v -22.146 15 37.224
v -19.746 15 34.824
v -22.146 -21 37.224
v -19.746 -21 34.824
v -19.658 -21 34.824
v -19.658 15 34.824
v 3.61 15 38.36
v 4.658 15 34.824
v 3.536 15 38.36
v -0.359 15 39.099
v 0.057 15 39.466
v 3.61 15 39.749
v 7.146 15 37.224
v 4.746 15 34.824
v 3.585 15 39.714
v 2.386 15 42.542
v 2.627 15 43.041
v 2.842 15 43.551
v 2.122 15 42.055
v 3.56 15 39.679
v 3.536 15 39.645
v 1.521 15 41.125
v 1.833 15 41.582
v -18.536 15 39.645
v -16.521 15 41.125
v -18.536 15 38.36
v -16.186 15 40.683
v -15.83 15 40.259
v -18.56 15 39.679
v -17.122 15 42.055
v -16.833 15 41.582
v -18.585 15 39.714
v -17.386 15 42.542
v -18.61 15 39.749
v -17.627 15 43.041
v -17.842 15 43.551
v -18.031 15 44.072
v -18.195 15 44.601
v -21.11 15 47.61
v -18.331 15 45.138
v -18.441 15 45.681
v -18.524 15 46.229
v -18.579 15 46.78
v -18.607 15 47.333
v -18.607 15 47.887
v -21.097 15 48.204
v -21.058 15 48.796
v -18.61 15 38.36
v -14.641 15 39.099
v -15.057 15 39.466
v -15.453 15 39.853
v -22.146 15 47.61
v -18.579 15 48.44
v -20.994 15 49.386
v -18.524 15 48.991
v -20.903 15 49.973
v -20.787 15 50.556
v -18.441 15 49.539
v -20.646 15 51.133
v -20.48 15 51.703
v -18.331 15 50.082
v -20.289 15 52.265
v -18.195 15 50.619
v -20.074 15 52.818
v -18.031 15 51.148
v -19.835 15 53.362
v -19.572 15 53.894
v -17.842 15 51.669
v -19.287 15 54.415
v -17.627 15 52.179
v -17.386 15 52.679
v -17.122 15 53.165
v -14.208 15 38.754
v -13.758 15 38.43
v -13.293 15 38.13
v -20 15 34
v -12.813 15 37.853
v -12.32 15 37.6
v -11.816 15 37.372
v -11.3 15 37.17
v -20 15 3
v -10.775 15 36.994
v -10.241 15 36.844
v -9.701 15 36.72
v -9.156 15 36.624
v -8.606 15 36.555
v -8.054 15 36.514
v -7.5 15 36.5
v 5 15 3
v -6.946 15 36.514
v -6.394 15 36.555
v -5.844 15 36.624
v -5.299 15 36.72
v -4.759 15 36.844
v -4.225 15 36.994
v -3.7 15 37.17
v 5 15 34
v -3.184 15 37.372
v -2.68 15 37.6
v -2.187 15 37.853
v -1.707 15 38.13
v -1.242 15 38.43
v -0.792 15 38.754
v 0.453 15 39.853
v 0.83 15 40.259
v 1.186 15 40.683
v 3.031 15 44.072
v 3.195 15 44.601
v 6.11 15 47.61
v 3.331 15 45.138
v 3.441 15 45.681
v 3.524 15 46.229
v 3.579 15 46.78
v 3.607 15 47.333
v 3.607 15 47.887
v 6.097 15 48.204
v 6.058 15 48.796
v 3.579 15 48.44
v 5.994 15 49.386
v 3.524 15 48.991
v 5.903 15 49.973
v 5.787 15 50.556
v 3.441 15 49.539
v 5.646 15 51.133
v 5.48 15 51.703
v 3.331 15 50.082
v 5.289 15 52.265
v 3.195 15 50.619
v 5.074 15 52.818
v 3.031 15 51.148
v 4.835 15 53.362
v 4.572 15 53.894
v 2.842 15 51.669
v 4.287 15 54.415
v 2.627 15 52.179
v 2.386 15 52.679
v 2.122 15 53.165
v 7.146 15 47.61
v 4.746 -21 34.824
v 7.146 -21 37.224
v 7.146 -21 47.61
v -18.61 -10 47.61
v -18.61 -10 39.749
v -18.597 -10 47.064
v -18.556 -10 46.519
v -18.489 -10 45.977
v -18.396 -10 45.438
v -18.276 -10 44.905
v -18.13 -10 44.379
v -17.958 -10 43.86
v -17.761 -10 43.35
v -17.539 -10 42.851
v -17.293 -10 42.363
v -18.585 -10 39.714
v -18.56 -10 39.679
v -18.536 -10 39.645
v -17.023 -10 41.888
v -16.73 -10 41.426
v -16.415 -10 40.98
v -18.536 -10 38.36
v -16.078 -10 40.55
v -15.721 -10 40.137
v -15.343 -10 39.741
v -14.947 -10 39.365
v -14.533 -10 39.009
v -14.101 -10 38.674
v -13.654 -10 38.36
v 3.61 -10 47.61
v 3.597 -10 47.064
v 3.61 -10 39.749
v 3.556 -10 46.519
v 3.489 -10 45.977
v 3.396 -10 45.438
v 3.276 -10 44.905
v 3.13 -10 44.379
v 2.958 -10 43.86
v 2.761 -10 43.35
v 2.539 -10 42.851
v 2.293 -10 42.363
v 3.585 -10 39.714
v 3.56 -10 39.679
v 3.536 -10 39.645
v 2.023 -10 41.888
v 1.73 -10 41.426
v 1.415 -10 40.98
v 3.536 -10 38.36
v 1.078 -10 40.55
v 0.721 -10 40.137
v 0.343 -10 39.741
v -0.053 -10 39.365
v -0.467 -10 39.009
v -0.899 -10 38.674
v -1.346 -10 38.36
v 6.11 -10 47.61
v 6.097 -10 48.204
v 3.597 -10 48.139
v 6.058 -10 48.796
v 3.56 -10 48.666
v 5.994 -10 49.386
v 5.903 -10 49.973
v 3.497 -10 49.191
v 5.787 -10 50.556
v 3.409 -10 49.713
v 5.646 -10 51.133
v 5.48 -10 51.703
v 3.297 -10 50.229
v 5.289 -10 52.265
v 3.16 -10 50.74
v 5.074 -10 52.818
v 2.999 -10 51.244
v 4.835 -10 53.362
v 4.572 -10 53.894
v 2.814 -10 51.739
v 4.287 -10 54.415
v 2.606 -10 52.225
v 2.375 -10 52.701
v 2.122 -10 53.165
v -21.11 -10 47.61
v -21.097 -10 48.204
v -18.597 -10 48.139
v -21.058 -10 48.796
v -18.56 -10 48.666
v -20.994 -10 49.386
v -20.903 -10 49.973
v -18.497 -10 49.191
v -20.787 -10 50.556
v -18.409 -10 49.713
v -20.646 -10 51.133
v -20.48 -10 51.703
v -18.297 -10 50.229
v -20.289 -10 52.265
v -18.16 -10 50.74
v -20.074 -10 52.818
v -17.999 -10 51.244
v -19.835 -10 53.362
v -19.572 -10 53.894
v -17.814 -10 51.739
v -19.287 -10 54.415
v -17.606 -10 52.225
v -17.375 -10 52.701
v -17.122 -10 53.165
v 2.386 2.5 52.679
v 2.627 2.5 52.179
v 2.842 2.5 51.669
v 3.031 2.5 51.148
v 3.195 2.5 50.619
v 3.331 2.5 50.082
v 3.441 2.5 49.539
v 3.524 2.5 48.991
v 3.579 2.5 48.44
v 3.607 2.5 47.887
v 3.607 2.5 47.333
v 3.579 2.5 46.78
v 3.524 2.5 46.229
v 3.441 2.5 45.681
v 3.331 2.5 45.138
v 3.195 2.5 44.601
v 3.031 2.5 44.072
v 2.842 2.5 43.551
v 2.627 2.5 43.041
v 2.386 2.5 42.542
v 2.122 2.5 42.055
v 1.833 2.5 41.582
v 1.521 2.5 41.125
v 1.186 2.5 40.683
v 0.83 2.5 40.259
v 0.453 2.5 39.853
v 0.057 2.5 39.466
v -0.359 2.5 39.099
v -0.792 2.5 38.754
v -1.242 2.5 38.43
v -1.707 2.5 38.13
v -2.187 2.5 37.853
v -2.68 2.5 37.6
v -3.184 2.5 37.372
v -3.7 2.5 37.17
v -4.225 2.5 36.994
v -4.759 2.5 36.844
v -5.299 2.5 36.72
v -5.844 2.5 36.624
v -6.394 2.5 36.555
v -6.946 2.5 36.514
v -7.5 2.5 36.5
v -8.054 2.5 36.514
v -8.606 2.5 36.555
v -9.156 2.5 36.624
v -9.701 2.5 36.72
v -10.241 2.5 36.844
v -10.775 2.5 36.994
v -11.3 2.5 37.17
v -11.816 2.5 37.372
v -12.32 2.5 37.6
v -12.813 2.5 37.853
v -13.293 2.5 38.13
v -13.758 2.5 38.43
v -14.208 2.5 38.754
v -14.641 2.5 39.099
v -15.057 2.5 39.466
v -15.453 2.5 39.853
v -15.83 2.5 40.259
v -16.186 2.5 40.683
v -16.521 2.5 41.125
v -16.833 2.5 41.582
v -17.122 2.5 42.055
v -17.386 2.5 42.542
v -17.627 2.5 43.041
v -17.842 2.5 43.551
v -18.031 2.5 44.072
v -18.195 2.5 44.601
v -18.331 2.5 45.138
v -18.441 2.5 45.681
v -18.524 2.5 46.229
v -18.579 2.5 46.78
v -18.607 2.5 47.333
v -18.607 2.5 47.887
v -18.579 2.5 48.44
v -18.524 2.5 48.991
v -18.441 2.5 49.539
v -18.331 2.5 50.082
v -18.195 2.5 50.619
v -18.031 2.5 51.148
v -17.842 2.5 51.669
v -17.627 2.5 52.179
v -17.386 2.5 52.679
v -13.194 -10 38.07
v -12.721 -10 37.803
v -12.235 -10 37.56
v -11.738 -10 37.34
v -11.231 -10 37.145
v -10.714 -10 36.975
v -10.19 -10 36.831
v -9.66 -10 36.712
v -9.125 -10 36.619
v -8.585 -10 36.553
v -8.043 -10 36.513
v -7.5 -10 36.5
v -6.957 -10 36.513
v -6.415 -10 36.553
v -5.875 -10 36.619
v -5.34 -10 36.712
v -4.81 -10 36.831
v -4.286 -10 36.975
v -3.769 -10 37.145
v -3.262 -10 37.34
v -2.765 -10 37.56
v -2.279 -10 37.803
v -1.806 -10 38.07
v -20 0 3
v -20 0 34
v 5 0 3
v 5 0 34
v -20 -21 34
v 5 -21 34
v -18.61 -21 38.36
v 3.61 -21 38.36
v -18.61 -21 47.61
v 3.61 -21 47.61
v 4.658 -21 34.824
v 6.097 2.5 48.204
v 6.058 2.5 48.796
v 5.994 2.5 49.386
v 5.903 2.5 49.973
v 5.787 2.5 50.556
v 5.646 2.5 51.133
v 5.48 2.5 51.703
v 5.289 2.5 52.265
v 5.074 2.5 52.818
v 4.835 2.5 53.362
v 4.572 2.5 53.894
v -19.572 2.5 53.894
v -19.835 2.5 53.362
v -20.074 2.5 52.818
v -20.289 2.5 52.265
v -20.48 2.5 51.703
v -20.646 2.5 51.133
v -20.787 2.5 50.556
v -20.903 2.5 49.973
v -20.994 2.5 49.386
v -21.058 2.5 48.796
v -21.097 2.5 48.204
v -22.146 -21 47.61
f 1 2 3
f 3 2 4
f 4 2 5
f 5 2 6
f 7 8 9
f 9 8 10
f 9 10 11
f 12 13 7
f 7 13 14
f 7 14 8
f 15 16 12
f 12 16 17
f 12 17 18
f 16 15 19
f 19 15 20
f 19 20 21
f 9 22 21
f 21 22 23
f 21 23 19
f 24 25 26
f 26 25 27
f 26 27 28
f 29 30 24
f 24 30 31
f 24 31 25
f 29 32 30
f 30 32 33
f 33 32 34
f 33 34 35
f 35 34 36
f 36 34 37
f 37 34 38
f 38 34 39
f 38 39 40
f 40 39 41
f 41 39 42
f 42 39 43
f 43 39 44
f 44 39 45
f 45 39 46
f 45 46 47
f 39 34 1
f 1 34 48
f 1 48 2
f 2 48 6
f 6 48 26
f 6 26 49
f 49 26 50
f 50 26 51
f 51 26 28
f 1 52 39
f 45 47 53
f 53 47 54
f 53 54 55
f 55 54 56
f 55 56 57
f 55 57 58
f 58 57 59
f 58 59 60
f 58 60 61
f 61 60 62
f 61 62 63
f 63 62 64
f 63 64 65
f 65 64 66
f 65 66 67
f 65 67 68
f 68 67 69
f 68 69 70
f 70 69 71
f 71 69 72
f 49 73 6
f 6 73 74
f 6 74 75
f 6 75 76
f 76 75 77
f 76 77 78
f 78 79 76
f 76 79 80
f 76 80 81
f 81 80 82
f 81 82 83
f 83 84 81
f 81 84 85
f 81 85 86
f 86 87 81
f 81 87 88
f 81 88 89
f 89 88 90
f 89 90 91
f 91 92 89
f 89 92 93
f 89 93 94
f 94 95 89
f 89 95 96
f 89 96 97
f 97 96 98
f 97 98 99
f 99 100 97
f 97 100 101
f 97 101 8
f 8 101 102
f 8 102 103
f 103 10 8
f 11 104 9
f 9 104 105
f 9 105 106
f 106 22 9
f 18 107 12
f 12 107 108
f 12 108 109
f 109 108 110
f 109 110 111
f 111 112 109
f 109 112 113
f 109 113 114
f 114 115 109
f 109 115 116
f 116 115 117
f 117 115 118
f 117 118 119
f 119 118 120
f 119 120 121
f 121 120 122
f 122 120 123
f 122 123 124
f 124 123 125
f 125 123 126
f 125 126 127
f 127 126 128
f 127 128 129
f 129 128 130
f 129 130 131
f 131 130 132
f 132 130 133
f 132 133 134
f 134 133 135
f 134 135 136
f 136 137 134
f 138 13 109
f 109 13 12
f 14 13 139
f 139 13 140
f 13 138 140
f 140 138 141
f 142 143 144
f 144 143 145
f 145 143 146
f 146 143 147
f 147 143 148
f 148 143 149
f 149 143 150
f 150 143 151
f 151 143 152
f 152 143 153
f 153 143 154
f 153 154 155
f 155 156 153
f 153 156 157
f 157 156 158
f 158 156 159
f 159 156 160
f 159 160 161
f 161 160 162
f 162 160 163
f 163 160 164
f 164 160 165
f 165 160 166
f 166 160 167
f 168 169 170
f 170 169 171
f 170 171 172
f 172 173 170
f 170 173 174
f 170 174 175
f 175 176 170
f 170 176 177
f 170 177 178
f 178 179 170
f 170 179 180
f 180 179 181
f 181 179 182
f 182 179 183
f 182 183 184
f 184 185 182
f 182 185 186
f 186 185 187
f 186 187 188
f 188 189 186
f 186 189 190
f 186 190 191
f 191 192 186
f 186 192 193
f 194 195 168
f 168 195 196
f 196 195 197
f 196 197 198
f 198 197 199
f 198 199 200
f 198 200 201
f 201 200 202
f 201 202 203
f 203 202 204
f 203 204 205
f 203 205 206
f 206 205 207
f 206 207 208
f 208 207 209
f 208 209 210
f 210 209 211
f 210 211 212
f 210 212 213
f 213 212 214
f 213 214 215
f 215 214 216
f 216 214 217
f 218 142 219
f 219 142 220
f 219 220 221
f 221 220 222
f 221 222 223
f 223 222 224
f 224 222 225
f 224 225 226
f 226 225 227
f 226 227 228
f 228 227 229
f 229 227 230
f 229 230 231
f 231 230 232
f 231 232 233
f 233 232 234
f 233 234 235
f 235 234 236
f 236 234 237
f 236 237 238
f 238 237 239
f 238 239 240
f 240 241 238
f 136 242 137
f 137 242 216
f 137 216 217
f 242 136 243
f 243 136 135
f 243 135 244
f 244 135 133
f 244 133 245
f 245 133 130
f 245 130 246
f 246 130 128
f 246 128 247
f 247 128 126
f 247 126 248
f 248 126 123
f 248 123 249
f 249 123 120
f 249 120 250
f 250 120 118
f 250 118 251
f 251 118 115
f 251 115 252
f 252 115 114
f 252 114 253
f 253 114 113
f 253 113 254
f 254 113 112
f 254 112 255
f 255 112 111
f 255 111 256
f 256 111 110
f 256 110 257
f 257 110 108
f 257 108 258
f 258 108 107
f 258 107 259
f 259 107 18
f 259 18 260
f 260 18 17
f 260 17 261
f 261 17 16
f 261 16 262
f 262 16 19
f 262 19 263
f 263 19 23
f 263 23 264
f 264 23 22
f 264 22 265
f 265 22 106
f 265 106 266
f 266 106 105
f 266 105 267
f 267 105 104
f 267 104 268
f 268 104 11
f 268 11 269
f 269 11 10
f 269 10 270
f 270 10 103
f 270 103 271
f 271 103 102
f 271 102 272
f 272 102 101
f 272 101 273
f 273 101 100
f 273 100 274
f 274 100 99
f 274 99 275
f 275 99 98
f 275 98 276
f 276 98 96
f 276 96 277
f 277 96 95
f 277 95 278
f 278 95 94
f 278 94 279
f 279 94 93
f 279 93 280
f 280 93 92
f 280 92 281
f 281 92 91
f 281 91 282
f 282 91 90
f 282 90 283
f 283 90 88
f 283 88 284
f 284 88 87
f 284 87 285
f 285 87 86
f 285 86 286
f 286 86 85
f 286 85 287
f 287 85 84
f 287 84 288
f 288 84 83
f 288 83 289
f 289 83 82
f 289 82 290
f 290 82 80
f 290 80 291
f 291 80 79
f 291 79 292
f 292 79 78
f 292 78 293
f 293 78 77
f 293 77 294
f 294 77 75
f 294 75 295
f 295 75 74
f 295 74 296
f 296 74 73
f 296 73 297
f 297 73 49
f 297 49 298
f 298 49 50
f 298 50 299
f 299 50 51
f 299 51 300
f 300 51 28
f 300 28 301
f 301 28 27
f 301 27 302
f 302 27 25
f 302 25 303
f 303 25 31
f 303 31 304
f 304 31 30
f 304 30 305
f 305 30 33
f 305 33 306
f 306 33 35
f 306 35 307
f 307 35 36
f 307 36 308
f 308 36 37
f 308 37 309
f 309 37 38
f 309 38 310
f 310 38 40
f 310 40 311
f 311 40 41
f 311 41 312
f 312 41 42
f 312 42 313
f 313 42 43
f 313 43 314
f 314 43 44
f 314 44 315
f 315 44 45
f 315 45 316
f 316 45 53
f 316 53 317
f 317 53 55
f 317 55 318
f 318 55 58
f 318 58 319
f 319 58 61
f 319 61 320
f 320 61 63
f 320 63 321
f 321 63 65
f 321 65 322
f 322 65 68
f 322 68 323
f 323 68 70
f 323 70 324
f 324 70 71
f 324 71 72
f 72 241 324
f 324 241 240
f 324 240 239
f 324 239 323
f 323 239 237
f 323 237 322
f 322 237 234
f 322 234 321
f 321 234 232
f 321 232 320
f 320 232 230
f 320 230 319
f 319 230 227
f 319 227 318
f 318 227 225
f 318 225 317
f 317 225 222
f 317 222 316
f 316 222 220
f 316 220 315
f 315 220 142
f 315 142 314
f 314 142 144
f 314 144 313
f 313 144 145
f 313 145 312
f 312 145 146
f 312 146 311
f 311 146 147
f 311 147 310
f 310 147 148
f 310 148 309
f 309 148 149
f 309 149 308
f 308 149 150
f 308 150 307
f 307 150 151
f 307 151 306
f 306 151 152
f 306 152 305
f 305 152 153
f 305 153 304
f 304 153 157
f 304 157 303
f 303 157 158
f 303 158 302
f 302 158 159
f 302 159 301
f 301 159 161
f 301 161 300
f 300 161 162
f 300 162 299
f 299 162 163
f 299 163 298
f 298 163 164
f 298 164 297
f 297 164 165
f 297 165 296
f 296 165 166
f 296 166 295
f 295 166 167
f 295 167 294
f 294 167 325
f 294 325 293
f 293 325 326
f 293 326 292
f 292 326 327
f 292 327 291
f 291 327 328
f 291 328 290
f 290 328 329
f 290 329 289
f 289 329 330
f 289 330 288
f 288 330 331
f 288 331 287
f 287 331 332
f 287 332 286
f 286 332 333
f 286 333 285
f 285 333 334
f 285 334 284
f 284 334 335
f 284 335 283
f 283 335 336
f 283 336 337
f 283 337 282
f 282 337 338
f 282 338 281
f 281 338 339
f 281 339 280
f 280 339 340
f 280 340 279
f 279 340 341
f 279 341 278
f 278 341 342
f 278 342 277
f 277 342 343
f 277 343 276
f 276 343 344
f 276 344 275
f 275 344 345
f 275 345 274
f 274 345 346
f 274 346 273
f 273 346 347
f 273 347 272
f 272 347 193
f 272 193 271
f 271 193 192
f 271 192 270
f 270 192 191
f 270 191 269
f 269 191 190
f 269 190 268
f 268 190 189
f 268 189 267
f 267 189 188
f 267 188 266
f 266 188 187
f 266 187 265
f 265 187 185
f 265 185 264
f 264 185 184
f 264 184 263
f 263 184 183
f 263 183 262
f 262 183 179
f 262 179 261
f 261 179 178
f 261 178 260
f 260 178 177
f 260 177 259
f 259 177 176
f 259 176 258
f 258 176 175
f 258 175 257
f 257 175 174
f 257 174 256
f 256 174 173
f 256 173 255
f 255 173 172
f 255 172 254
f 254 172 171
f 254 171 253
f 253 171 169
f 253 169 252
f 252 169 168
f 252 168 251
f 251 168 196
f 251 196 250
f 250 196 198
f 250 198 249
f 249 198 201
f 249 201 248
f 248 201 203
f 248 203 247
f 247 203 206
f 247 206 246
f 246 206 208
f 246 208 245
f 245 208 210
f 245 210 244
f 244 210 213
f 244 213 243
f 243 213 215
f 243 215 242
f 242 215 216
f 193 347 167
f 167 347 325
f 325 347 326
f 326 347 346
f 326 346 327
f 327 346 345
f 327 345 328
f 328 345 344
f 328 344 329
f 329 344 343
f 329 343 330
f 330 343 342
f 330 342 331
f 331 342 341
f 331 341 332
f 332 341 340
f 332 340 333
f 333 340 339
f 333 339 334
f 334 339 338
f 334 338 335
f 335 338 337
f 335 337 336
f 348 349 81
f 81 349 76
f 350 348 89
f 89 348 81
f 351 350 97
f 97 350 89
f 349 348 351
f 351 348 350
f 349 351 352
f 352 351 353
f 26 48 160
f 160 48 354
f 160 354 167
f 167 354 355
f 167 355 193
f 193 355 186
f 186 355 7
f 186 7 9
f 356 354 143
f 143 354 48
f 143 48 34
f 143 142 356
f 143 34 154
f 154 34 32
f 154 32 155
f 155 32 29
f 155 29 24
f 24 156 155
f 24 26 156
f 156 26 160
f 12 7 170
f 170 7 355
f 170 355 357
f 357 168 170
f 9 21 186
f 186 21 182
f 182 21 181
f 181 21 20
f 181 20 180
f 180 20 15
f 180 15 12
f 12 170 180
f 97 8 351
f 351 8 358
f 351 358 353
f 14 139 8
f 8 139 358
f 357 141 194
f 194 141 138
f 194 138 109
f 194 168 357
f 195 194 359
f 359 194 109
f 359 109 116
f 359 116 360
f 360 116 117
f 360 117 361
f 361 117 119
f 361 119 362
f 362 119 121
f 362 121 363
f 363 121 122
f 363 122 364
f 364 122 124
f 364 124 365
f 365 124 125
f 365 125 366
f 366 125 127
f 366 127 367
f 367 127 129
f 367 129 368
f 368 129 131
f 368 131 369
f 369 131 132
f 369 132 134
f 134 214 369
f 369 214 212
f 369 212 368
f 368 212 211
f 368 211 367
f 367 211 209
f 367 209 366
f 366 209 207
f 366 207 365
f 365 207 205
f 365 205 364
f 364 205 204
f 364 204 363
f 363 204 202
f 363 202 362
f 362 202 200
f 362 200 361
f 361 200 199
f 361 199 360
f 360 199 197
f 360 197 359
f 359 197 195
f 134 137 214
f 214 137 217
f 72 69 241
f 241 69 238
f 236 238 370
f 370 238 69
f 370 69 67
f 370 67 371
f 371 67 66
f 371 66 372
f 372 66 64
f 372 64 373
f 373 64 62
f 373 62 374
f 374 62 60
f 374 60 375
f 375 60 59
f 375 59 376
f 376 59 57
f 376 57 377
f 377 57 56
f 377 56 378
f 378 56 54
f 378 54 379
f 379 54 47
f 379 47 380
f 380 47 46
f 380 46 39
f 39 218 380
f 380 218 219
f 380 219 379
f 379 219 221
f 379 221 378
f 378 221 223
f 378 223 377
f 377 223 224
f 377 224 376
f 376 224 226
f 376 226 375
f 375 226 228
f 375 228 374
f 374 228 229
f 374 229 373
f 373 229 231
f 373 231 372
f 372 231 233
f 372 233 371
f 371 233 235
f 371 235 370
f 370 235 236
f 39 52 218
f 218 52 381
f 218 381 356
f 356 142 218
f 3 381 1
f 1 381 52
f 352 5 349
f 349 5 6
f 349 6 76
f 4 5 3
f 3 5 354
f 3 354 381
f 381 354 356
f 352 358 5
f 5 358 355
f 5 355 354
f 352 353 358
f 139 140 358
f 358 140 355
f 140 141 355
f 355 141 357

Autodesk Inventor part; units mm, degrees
ref_plane "YZ Plane" through (0, 0, 0) normal (1, 0, 0) x (0, 1, 0)
ref_plane "XZ Plane" through (0, 0, 0) normal (0, 1, 0) x (-1, 0, 0)
ref_plane "XY Plane" through (0, 0, 0) normal (0, 0, 1) x (1, 0, 0)
sketch "Sketch1" plane through (0, 0, 0) normal (0, 1, 0) x (-1, 0, 0)
  line L0 (0, 0) -> (15, 0)
  line L1 (15, 0) -> (15, 34)
  line L2 (15, 34) -> (0, 34)
  line L3 (0, 34) -> (0, 0)
  line L4 (7.5, 34) -> (7.5, 36.5)
  line L5 (7.5, 36.5) -> (7.5, 47.61)
  circle A0 centre (7.5, 47.61) radius 11.11
  circle A1 centre (7.5, 47.61) radius 13.61
  line L6 (7.5, 47.61) -> (19.2866, 54.415)
  line L7 (7.5, 47.61) -> (21.11, 47.61) construction
  line L8 (7.5, 47.61) -> (-4.2866, 54.415)
  line L9 (7.5, 47.61) -> (21.11, 47.61) construction
  line L10 (15, 34) -> (18.5355, 37.5355)
  line L11 (15, 34) -> (20, 34) construction
  line L12 (18.5355, 37.5355) -> (18.5355, 39.6445)
  line L13 (0, 34) -> (-3.5355, 37.5355)
  line L14 (-3.5355, 37.5355) -> (-3.5355, 39.6445)
  line L15 (7.5, 47.61) -> (7.5, 56.86)
  line L16 (7.5, 56.86) -> (17.4835, 56.86)
  line L17 (7.5, 56.86) -> (-2.4835, 56.86)
  line L18 (7.5, 47.61) -> (-6.11, 47.61)
  line L19 (7.5, 47.61) -> (7.5, 38.36)
  line L20 (7.5, 38.36) -> (17.4835, 38.36)
  line L21 (7.5, 38.36) -> (-2.4835, 38.36)
  line L22 (7.5, 38.36) -> (-3.61, 38.36)
  line L23 (-3.61, 38.36) -> (-3.61, 47.61)
  line L24 (-3.61, 47.61) -> (-3.61, 56.86)
  line L25 (-3.61, 56.86) -> (-2.4835, 56.86)
  line L26 (7.5, 56.86) -> (18.61, 56.86)
  line L27 (18.61, 56.86) -> (18.61, 47.61)
  line L28 (7.5, 38.36) -> (18.61, 38.36)
  line L29 (18.61, 38.36) -> (18.61, 47.61)
  line L30 (7.5, 0) -> (7.5, 3)
  line L31 (7.5, 3) -> (0, 3)
  line L32 (7.5, 3) -> (15, 3)
  line L33 (7.5, 3) -> (20, 3)
  line L34 (7.5, 3) -> (-5, 3)
  line L35 (7.5, 34) -> (20, 34)
  line L36 (7.5, 34) -> (-5, 34)
  line L37 (-5, 34) -> (-5, 3)
  line L38 (20, 3) -> (20, 34)
  line L39 (18.61, 38.36) -> (22.1455, 34.8245)
  line L40 (-3.61, 56.86) -> (-7.1455, 60.3955)
  line L41 (22.1455, 34.8245) -> (-7.1455, 34.8245)
  line L42 (-7.1455, 34.8245) -> (-7.1455, 60.3955)
  line L43 (-7.1455, 60.3955) -> (22.1455, 60.3955)
  line L44 (22.1455, 60.3955) -> (22.1455, 34.8245)
  line L45 (-3.5355, 37.5355) -> (-5, 34)
  line L46 (18.5355, 37.5355) -> (20, 34)
  line L47 (7.5, 47.61) -> (-7.1455, 47.61)
  line L48 (7.5, 47.61) -> (22.1455, 47.61)
  point P0 (17.1215, 53.165)
  point P1 (-2.1215, 53.165)
  point P2 (0, 34)
  point P3 (0, 3)
  point P4 (0, 34)
  point P5 (2.835, 60.3955)
  point P6 (-4.6585, 34.8245)
  point P7 (-3.5355, 38.36)
  point P8 (-3.61, 39.7487)
  point P9 (-3.61, 55.4713)
  point P10 (12.165, 60.3955)
  point P11 (18.61, 55.4713)
  point P12 (18.61, 39.7487)
  point P13 (18.5355, 38.36)
  point P14 (19.6585, 34.8245)
  point P15 (18.61, 47.61)
  dimension "d0" = 15
  dimension "d1" = 34
  dimension "d2" = 2.5
  dimension "d3" = 11.11
  dimension "d4" = 30
  dimension "d5" = 150
  dimension "d6" = 5
  dimension "d7" = 45
  dimension "d10" = 9.25
  dimension "d11" = 11.11
  dimension "d12" = 11.11
  dimension "d13" = 11.11
  dimension "d14" = 3
  dimension "d15" = 12.5
  dimension "d16" = 5
  dimension "d17" = 5
extrude "Extrusion1" add sketch "Sketch1" along normal blind 15 and the other way blind 10 contours L13 L41 A1 L2 | L36 L45 L41 L13 | A1 L41 L10 L2 | A1 L41 L4 | L4 L41 A1 | L41 L45 L13 | L13 L14 L22 A1 L41 | L10 L41 L46 L35 | L41 A1 L21 A0 L4 | L4 A0 L20 A1 L41 | A1 L28 L12 L10 L41 | L45 L41 L42 L47 A1 L23 L22 L14 | L10 L46 L41 | L22 L14 A1 | A1 L23 A0 L21 | L20 A0 L29 A1 | A1 L12 L28 | L12 L28 L39 L41 L46 | L39 L29 A1 L48 L44 | L24 L8 A0 | L23 A1 L18 | L18 A1 L8 L24 | A0 L6 L27 | L48 A1 L29 | L27 L6 A1 L48
extrude "Extrusion2" add sketch "Sketch1" along normal blind 15 contours L34 L37 L36 L3 | L3 L2 L1 L32 L31 | L1 L35 L38 L33
extrude "Extrusion3" add sketch "Sketch1" against normal blind 11 from surface at -10 contours L13 L41 A1 L2 | L36 L45 L41 L13 | A1 L41 L10 L2 | A1 L41 L4 | L4 L41 A1 | L41 L45 L13 | L13 L14 L22 A1 L41 | L10 L41 L46 L35 | L41 A1 L21 A0 L4 | L4 A0 L20 A1 L41 | A1 L28 L12 L10 L41 | L45 L41 L42 L47 A1 L23 L22 L14 | L10 L46 L41 | A0 L21 L5 | L5 L20 A0 | L12 L28 L39 L41 L46 | L39 L29 A1 L48 L44 | L23 A1 L18 | L48 A1 L29
chamfer "Chamfer2" distance 2.4 angle 45 2 edges at (7.1455, -3, 34.8245) (-22.1455, -3, 34.8245)
properties part number "motor holder v2"
